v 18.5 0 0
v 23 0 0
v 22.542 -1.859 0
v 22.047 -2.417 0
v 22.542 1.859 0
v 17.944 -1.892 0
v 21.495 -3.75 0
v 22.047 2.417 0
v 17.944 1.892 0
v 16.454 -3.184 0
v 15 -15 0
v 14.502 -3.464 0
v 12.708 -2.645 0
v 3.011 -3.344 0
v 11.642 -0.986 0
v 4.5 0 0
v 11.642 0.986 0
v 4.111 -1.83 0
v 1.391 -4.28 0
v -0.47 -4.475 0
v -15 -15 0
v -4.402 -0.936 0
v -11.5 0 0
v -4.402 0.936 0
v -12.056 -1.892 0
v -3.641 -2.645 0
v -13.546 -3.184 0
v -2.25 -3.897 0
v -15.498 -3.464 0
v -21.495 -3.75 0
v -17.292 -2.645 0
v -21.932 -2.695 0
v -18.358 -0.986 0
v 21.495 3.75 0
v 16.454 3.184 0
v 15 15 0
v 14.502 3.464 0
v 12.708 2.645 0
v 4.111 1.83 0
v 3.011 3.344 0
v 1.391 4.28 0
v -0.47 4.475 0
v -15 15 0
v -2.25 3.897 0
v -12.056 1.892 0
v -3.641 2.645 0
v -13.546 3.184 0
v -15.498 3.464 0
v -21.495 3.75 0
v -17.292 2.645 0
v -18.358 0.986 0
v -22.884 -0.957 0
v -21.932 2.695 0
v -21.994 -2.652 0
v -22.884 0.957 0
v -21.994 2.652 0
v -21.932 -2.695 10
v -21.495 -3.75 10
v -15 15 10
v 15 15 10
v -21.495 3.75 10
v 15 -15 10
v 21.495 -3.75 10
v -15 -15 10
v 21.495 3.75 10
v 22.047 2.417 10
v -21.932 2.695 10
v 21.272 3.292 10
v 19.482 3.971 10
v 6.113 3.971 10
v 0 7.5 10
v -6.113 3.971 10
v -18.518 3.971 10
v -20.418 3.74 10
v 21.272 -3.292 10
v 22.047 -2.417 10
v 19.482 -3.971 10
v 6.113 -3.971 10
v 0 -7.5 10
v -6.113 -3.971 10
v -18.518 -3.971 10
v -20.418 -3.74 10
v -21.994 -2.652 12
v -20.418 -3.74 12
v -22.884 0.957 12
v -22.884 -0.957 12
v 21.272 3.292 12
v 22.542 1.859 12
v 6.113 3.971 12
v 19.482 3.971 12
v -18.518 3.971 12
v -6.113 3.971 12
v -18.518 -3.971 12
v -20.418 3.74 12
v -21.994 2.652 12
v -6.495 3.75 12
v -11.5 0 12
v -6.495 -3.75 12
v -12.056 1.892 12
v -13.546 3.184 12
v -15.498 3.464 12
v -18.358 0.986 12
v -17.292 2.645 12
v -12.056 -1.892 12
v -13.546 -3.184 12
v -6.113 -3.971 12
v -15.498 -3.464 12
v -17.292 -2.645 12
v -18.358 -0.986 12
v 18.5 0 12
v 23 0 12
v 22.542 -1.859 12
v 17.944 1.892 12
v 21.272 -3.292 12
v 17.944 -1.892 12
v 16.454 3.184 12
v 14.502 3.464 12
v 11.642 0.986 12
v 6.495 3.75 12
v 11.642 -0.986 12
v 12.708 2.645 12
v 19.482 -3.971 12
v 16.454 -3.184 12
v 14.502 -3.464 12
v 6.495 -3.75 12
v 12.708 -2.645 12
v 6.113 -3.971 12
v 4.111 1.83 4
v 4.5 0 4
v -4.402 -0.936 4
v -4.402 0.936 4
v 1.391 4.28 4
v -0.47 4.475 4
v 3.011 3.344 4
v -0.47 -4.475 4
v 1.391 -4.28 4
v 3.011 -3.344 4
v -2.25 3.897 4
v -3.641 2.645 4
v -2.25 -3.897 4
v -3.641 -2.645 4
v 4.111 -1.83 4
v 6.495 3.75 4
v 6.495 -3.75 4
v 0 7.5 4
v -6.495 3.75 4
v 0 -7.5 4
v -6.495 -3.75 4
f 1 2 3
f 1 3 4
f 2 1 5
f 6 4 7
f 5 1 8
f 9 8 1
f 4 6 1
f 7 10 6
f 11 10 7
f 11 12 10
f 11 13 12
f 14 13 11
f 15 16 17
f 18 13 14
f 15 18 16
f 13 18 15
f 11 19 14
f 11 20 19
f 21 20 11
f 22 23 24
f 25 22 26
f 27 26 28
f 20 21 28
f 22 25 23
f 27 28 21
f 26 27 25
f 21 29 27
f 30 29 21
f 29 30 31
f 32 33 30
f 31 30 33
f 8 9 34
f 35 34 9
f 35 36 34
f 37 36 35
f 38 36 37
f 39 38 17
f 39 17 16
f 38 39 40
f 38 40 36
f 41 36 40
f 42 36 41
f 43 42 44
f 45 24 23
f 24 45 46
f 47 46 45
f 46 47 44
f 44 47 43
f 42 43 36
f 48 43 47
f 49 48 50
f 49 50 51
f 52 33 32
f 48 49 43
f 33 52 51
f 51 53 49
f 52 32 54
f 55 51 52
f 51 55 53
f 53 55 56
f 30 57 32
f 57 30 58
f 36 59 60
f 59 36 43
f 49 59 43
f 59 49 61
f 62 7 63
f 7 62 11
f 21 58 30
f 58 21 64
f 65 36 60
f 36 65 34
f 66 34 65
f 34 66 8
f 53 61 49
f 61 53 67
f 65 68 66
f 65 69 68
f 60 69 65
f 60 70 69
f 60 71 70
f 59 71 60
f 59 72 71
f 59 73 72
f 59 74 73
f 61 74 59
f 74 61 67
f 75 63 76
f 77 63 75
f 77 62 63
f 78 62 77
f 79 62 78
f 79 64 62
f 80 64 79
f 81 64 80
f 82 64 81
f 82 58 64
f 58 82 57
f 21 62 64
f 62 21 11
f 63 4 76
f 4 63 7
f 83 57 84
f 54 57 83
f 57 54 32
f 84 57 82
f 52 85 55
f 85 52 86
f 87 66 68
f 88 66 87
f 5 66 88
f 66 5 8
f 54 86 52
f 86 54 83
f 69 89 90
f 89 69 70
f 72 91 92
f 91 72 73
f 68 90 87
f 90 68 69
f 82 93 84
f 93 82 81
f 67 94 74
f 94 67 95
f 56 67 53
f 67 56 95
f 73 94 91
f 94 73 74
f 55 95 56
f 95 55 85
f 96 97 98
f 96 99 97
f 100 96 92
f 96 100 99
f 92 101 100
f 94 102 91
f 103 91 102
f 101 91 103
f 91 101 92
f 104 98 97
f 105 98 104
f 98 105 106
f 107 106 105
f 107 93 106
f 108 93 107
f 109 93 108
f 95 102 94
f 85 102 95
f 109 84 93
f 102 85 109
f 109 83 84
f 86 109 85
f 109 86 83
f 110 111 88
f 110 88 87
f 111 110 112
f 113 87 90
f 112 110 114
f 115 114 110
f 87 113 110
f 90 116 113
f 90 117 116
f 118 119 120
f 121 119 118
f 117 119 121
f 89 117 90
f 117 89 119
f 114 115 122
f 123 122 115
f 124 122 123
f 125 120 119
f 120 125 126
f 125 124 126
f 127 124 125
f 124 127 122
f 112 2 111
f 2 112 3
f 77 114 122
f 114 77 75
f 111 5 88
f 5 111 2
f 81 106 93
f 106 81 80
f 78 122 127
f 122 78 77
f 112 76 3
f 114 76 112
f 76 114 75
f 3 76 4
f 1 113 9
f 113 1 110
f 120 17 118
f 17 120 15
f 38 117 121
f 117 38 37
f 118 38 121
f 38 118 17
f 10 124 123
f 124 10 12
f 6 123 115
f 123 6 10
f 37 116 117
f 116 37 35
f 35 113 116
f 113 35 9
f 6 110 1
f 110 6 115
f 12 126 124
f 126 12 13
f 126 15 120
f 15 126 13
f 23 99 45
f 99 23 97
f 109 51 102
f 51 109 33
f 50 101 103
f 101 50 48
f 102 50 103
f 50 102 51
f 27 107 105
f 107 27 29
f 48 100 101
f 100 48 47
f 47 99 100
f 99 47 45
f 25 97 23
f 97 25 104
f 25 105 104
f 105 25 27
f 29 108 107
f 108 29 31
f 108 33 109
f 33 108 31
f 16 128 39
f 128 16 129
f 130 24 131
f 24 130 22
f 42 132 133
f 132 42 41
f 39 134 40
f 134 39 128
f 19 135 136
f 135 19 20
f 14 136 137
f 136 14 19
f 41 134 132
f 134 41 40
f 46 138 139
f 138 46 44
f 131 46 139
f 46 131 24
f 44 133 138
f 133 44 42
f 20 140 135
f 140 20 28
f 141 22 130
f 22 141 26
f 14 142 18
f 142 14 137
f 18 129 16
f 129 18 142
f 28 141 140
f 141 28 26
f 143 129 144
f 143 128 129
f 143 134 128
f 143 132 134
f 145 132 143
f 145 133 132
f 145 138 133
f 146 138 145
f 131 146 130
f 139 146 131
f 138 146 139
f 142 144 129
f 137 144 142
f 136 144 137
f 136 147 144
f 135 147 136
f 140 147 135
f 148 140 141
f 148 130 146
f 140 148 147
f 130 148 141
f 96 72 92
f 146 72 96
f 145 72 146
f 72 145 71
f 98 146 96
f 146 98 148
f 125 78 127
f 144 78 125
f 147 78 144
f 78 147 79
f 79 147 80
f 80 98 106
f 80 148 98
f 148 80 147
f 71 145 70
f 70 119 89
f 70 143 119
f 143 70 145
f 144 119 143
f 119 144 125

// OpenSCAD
m6_dira = 7;
diry_l = 30;
m8_dira = 9;
m8_hlava = 15;
drazka = 8;

module uchyt_vahadla(){
    difference(){
        union(){
            linear_extrude(height = 10){
                hull(){
                    translate([diry_l/2,0])
                        circle(d=15);
                    translate([-diry_l/2,0])
                        circle(d=15);
                    square([diry_l,30],center = true);
                }            
            }
            linear_extrude(height = 12){
                hull(){                    
                    translate([diry_l/2+4,0])
                       circle(d=drazka);
                    translate([-diry_l/2-4,0])
                        circle(d=drazka);

                }
            }    
            
        }
        translate([diry_l/2,0,-1])
            cylinder(d=m6_dira,h=20);
        translate([-diry_l/2,0,-1])
            cylinder(d=m6_dira,h=20);
        
        translate([0,0,-1])
            cylinder(d=m8_dira,h=20);
        rotate([0,0,90])
            translate([0,0,4])
                cylinder(d=m8_hlava,h=16,$fn=6);
    
    }
}

module kloub(){
    color("DarkSlateGray",1){
        sphere(13/2);
        cylinder(d=5,h=19.2);
        translate([0,0,9-2])
            cylinder(d=8,h=2);
        rotate([90,0,0])
            cylinder(d=8,h=22);
    }    
}
//kloub();

    

uchyt_vahadla();
